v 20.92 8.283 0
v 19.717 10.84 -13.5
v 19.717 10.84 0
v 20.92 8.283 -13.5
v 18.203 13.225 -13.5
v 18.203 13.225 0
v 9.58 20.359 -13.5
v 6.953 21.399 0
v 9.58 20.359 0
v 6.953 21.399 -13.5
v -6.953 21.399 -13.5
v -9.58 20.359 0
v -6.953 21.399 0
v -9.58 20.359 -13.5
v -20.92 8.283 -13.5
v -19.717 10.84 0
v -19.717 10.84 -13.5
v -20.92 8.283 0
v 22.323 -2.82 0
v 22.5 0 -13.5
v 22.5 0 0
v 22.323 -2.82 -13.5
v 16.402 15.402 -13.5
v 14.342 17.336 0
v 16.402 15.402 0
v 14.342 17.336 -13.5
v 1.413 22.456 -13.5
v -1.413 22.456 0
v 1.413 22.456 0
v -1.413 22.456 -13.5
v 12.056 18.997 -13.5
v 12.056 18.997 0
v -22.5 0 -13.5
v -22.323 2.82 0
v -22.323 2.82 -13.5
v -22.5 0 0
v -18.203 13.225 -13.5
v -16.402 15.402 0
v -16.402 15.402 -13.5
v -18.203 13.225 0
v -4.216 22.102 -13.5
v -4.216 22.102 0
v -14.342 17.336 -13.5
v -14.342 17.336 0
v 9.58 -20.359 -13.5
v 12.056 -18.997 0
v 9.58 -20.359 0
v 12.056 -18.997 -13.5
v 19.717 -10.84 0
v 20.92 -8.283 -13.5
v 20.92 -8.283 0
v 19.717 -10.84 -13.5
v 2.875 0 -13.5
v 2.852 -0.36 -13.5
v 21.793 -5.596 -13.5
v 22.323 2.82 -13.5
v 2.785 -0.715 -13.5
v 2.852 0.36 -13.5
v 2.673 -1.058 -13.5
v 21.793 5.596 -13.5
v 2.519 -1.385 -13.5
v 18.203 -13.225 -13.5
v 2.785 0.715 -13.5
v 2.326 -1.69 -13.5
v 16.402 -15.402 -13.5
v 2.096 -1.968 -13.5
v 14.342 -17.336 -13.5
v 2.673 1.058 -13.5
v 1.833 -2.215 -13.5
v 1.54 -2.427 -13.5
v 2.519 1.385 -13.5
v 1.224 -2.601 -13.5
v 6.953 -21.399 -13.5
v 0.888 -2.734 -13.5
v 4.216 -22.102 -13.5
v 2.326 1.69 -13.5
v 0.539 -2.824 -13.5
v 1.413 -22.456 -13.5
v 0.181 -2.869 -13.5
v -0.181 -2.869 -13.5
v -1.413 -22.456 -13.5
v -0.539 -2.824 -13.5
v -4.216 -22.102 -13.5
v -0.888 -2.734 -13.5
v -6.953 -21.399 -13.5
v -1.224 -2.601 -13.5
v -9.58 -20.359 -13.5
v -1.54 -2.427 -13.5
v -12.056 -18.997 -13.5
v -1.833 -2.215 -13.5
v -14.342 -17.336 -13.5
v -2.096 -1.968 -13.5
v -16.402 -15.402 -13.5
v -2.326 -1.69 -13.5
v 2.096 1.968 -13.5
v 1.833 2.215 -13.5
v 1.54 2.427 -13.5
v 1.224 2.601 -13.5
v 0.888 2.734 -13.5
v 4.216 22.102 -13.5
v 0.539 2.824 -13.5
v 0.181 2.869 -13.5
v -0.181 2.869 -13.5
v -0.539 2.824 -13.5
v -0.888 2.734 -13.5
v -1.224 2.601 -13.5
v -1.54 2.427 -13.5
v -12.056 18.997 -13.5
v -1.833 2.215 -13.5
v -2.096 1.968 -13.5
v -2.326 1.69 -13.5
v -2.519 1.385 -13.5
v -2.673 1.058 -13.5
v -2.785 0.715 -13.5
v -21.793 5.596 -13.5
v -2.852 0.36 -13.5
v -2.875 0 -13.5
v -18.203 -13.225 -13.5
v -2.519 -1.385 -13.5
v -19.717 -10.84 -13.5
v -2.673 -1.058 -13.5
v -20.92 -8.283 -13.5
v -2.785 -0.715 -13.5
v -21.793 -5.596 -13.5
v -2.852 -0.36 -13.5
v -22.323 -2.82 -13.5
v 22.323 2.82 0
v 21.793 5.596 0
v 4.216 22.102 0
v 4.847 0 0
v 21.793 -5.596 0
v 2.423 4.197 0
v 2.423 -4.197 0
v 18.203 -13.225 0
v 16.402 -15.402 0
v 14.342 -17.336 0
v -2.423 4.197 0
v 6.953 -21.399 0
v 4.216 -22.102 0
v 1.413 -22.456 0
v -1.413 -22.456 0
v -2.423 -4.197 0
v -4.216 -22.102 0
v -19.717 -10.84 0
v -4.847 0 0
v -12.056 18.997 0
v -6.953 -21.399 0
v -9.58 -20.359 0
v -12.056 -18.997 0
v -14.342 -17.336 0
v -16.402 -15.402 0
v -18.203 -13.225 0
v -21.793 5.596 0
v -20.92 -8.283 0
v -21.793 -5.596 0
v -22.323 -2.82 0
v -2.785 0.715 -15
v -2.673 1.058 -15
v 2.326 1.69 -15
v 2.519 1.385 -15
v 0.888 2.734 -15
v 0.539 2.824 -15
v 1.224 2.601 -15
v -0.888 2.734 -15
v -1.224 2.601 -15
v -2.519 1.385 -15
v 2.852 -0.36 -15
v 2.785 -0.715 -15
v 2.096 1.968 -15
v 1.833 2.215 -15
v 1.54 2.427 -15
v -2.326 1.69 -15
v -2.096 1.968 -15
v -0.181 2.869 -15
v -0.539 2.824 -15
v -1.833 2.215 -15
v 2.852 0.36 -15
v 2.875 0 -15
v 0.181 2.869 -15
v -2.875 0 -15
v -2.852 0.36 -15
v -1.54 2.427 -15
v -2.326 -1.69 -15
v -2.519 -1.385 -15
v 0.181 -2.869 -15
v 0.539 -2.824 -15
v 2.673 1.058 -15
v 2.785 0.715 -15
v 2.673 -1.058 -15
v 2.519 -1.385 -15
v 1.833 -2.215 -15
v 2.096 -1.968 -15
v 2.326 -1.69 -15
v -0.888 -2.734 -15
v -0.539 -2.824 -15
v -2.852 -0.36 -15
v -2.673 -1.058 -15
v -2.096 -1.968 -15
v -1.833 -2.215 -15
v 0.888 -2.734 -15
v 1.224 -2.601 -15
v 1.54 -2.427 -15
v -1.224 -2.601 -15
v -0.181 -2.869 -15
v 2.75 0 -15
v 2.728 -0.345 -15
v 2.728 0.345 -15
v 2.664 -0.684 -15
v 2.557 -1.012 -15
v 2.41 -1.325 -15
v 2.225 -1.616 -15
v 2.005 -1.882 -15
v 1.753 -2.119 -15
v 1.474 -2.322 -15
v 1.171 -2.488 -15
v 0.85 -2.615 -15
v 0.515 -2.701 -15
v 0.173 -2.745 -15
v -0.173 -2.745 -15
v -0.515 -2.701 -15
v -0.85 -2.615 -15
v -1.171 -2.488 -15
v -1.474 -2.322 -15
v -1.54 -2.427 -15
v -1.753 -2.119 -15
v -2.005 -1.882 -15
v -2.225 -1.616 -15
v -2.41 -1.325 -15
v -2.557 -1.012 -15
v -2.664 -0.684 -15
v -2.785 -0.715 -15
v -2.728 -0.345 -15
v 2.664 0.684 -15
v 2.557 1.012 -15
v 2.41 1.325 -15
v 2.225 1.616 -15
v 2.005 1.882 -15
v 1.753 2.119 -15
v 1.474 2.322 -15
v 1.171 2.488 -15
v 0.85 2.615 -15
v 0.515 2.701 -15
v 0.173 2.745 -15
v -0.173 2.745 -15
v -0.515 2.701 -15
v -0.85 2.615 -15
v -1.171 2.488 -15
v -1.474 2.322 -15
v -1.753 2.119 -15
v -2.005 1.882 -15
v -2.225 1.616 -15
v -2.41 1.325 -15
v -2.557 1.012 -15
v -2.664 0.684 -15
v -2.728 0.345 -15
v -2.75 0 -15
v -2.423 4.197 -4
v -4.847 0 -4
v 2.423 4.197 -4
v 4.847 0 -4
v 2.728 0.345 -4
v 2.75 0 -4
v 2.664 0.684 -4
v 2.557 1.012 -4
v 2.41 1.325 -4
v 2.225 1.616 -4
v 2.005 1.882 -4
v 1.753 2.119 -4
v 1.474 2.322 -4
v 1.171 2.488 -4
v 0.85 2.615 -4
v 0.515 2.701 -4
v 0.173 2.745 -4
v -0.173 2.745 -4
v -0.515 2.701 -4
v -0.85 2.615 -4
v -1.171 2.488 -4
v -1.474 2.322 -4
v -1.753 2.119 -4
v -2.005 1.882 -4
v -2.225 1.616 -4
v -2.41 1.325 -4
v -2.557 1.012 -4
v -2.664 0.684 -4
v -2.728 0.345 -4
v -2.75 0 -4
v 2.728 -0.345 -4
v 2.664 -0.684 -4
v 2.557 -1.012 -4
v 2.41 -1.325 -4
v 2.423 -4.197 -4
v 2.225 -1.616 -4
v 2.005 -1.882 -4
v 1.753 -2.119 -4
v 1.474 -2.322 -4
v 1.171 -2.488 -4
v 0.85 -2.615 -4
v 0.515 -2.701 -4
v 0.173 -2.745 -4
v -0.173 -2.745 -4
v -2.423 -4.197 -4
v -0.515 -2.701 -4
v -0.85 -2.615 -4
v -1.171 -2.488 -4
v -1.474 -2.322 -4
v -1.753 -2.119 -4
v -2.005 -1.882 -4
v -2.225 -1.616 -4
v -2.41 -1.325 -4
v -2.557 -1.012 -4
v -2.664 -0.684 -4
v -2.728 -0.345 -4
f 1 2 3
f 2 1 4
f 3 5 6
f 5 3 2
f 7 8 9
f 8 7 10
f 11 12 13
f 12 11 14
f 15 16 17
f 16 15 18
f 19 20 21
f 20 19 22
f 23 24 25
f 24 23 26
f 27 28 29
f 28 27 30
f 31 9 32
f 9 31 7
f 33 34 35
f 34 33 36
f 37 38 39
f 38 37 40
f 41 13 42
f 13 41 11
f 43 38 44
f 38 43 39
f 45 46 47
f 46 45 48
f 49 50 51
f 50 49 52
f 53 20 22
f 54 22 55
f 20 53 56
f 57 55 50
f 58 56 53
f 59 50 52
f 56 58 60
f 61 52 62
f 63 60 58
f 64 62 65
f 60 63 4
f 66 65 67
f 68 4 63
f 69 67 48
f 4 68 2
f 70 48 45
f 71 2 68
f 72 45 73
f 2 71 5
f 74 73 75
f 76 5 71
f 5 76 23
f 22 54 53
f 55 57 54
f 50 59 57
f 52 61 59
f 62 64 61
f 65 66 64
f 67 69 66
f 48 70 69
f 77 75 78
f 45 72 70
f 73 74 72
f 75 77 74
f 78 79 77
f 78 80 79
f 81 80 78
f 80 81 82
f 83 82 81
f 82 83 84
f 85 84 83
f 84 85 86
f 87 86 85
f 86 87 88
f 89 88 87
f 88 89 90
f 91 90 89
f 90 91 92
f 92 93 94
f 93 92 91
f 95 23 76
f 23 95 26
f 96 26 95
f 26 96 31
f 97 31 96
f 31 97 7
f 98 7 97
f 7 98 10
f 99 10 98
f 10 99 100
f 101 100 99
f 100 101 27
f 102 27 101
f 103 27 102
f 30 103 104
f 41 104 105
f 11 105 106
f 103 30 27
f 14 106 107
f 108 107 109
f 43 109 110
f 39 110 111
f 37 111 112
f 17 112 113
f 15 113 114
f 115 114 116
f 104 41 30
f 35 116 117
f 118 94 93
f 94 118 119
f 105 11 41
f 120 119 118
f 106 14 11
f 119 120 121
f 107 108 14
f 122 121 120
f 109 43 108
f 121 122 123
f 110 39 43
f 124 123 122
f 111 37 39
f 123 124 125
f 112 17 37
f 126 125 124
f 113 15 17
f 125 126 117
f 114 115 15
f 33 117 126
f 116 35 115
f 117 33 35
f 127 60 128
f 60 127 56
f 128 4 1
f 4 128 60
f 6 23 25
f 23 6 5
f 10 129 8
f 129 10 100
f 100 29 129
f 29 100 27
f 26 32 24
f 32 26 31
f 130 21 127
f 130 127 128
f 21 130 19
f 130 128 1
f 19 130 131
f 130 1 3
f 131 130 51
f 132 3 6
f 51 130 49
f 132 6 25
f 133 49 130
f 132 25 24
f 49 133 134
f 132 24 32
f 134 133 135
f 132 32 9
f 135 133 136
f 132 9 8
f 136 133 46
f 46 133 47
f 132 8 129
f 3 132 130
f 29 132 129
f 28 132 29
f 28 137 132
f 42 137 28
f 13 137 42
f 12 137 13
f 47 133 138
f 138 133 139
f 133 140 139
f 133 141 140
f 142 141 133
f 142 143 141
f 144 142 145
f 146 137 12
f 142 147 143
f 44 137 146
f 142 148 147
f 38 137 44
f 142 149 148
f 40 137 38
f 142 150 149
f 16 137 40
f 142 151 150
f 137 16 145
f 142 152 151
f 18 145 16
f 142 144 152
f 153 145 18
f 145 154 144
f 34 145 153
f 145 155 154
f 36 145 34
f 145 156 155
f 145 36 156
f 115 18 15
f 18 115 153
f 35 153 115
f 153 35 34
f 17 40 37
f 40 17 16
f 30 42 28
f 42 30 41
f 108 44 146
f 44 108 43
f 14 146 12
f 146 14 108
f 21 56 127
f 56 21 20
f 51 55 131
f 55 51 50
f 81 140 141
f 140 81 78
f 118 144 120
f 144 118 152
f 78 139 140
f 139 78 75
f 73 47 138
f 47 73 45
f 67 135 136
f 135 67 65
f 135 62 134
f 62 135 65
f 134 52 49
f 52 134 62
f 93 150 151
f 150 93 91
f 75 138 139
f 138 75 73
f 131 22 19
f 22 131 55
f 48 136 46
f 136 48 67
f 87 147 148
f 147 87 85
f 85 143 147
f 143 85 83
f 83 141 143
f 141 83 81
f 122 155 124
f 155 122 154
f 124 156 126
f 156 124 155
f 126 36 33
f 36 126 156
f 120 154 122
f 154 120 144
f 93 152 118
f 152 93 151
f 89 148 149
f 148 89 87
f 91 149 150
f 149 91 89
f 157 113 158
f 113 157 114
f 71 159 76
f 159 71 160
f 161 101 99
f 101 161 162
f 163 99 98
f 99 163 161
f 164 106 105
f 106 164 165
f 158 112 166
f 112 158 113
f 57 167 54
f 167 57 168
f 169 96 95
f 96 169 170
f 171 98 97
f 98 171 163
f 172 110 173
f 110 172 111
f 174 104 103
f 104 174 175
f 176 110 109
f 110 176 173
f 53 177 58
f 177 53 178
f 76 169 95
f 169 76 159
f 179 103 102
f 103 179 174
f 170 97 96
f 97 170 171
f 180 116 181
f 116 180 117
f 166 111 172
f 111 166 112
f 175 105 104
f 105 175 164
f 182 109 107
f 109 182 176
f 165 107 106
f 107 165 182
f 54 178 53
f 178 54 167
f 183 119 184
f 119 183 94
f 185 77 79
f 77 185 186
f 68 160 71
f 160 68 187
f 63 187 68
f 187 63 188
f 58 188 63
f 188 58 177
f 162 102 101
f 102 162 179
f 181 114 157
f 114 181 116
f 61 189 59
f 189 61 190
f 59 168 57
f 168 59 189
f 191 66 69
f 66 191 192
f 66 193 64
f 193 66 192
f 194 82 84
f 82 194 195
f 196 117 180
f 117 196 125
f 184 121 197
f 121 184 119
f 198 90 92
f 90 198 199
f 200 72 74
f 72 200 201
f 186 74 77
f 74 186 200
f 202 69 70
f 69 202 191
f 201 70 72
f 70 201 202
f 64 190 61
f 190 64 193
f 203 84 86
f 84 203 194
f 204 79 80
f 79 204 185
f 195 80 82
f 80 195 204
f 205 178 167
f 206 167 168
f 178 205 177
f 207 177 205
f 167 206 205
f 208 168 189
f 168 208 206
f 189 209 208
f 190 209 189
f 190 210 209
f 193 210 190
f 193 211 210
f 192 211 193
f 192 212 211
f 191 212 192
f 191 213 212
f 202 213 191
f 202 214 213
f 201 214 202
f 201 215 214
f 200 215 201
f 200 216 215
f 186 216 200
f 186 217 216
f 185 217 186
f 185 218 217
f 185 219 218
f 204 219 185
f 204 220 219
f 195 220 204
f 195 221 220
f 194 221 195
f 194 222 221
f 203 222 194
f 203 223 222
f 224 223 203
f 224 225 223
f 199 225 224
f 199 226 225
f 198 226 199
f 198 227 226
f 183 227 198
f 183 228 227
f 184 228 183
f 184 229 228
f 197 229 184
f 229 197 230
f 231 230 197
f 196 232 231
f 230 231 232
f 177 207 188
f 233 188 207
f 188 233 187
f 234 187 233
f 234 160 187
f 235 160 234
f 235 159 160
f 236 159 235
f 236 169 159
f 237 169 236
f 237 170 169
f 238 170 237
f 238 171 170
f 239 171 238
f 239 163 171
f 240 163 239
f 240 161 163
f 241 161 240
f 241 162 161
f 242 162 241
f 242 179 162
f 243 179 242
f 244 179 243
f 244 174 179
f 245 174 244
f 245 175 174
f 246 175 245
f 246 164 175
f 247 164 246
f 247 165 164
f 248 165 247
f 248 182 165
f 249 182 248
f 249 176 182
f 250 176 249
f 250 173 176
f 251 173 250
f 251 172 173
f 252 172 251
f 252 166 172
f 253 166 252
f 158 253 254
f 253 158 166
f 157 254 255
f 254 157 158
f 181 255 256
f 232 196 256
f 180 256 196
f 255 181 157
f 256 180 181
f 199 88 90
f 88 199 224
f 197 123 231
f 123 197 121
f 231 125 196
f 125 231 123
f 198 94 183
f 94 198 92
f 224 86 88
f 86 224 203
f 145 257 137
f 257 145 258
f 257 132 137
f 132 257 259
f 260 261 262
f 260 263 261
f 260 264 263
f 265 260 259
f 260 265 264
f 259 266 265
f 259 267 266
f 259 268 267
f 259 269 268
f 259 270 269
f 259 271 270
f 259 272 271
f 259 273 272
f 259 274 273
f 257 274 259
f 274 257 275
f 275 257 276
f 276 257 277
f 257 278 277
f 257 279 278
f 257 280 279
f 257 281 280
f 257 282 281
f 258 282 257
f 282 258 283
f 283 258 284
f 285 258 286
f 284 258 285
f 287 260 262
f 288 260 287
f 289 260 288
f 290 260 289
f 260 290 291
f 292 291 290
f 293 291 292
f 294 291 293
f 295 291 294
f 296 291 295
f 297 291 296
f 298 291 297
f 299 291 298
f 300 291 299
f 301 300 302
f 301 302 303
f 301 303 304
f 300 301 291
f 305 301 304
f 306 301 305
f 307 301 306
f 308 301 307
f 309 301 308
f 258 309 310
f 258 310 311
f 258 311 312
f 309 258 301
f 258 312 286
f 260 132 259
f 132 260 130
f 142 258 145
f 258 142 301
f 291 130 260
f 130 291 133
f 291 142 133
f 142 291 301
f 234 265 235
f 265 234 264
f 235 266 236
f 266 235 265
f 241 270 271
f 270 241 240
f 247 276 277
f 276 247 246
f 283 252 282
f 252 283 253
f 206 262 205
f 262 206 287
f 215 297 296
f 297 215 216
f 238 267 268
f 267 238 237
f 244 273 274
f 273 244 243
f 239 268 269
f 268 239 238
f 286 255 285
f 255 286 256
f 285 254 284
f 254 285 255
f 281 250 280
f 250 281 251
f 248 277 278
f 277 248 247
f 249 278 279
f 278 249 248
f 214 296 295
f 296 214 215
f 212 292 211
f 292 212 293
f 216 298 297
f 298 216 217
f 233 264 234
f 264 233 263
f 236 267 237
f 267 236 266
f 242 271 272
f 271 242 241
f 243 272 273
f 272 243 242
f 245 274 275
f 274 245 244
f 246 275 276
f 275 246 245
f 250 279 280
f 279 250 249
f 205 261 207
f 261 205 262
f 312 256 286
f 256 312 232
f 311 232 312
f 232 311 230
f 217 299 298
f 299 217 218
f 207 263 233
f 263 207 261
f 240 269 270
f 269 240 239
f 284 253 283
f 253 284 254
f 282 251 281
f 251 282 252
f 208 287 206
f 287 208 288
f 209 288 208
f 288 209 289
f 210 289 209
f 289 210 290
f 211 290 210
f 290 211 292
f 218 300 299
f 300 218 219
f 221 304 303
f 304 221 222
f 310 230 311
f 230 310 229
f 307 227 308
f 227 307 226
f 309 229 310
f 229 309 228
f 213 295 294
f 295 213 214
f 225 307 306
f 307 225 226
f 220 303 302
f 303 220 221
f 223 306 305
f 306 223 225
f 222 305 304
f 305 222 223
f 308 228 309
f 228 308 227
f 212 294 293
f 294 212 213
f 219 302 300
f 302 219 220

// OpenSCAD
$fn = 50;

difference() {
	union() {
		translate(v = [0, 0, -13.5]) {
			cylinder(h = 13.5, r = 22.5);
		}
		#translate(v = [0, 0, -15.0]) {
			cylinder(h = 15, r = 2.875);
		}
	}
	union() {
		translate(v = [0, 0, 0]) {
			rotate(a = [0, 0, 0]) {
				difference() {
					union() {
						translate(v = [0, 0, -4]) {
							linear_extrude(height = 4) {
								polygon(points = [[4.8468, 0.0], [2.4234000000000004, 4.197451927062417], [-2.423399999999999, 4.197451927062417], [-4.8468, 5.935618106107392e-16], [-2.423400000000002, -4.197451927062416], [2.423399999999997, -4.197451927062419]]);
							}
						}
					}
					union();
				}
			}
		}
		#translate(v = [0, 0, -100.0]) {
			cylinder(h = 200, r = 2.75);
		}
	}
}
